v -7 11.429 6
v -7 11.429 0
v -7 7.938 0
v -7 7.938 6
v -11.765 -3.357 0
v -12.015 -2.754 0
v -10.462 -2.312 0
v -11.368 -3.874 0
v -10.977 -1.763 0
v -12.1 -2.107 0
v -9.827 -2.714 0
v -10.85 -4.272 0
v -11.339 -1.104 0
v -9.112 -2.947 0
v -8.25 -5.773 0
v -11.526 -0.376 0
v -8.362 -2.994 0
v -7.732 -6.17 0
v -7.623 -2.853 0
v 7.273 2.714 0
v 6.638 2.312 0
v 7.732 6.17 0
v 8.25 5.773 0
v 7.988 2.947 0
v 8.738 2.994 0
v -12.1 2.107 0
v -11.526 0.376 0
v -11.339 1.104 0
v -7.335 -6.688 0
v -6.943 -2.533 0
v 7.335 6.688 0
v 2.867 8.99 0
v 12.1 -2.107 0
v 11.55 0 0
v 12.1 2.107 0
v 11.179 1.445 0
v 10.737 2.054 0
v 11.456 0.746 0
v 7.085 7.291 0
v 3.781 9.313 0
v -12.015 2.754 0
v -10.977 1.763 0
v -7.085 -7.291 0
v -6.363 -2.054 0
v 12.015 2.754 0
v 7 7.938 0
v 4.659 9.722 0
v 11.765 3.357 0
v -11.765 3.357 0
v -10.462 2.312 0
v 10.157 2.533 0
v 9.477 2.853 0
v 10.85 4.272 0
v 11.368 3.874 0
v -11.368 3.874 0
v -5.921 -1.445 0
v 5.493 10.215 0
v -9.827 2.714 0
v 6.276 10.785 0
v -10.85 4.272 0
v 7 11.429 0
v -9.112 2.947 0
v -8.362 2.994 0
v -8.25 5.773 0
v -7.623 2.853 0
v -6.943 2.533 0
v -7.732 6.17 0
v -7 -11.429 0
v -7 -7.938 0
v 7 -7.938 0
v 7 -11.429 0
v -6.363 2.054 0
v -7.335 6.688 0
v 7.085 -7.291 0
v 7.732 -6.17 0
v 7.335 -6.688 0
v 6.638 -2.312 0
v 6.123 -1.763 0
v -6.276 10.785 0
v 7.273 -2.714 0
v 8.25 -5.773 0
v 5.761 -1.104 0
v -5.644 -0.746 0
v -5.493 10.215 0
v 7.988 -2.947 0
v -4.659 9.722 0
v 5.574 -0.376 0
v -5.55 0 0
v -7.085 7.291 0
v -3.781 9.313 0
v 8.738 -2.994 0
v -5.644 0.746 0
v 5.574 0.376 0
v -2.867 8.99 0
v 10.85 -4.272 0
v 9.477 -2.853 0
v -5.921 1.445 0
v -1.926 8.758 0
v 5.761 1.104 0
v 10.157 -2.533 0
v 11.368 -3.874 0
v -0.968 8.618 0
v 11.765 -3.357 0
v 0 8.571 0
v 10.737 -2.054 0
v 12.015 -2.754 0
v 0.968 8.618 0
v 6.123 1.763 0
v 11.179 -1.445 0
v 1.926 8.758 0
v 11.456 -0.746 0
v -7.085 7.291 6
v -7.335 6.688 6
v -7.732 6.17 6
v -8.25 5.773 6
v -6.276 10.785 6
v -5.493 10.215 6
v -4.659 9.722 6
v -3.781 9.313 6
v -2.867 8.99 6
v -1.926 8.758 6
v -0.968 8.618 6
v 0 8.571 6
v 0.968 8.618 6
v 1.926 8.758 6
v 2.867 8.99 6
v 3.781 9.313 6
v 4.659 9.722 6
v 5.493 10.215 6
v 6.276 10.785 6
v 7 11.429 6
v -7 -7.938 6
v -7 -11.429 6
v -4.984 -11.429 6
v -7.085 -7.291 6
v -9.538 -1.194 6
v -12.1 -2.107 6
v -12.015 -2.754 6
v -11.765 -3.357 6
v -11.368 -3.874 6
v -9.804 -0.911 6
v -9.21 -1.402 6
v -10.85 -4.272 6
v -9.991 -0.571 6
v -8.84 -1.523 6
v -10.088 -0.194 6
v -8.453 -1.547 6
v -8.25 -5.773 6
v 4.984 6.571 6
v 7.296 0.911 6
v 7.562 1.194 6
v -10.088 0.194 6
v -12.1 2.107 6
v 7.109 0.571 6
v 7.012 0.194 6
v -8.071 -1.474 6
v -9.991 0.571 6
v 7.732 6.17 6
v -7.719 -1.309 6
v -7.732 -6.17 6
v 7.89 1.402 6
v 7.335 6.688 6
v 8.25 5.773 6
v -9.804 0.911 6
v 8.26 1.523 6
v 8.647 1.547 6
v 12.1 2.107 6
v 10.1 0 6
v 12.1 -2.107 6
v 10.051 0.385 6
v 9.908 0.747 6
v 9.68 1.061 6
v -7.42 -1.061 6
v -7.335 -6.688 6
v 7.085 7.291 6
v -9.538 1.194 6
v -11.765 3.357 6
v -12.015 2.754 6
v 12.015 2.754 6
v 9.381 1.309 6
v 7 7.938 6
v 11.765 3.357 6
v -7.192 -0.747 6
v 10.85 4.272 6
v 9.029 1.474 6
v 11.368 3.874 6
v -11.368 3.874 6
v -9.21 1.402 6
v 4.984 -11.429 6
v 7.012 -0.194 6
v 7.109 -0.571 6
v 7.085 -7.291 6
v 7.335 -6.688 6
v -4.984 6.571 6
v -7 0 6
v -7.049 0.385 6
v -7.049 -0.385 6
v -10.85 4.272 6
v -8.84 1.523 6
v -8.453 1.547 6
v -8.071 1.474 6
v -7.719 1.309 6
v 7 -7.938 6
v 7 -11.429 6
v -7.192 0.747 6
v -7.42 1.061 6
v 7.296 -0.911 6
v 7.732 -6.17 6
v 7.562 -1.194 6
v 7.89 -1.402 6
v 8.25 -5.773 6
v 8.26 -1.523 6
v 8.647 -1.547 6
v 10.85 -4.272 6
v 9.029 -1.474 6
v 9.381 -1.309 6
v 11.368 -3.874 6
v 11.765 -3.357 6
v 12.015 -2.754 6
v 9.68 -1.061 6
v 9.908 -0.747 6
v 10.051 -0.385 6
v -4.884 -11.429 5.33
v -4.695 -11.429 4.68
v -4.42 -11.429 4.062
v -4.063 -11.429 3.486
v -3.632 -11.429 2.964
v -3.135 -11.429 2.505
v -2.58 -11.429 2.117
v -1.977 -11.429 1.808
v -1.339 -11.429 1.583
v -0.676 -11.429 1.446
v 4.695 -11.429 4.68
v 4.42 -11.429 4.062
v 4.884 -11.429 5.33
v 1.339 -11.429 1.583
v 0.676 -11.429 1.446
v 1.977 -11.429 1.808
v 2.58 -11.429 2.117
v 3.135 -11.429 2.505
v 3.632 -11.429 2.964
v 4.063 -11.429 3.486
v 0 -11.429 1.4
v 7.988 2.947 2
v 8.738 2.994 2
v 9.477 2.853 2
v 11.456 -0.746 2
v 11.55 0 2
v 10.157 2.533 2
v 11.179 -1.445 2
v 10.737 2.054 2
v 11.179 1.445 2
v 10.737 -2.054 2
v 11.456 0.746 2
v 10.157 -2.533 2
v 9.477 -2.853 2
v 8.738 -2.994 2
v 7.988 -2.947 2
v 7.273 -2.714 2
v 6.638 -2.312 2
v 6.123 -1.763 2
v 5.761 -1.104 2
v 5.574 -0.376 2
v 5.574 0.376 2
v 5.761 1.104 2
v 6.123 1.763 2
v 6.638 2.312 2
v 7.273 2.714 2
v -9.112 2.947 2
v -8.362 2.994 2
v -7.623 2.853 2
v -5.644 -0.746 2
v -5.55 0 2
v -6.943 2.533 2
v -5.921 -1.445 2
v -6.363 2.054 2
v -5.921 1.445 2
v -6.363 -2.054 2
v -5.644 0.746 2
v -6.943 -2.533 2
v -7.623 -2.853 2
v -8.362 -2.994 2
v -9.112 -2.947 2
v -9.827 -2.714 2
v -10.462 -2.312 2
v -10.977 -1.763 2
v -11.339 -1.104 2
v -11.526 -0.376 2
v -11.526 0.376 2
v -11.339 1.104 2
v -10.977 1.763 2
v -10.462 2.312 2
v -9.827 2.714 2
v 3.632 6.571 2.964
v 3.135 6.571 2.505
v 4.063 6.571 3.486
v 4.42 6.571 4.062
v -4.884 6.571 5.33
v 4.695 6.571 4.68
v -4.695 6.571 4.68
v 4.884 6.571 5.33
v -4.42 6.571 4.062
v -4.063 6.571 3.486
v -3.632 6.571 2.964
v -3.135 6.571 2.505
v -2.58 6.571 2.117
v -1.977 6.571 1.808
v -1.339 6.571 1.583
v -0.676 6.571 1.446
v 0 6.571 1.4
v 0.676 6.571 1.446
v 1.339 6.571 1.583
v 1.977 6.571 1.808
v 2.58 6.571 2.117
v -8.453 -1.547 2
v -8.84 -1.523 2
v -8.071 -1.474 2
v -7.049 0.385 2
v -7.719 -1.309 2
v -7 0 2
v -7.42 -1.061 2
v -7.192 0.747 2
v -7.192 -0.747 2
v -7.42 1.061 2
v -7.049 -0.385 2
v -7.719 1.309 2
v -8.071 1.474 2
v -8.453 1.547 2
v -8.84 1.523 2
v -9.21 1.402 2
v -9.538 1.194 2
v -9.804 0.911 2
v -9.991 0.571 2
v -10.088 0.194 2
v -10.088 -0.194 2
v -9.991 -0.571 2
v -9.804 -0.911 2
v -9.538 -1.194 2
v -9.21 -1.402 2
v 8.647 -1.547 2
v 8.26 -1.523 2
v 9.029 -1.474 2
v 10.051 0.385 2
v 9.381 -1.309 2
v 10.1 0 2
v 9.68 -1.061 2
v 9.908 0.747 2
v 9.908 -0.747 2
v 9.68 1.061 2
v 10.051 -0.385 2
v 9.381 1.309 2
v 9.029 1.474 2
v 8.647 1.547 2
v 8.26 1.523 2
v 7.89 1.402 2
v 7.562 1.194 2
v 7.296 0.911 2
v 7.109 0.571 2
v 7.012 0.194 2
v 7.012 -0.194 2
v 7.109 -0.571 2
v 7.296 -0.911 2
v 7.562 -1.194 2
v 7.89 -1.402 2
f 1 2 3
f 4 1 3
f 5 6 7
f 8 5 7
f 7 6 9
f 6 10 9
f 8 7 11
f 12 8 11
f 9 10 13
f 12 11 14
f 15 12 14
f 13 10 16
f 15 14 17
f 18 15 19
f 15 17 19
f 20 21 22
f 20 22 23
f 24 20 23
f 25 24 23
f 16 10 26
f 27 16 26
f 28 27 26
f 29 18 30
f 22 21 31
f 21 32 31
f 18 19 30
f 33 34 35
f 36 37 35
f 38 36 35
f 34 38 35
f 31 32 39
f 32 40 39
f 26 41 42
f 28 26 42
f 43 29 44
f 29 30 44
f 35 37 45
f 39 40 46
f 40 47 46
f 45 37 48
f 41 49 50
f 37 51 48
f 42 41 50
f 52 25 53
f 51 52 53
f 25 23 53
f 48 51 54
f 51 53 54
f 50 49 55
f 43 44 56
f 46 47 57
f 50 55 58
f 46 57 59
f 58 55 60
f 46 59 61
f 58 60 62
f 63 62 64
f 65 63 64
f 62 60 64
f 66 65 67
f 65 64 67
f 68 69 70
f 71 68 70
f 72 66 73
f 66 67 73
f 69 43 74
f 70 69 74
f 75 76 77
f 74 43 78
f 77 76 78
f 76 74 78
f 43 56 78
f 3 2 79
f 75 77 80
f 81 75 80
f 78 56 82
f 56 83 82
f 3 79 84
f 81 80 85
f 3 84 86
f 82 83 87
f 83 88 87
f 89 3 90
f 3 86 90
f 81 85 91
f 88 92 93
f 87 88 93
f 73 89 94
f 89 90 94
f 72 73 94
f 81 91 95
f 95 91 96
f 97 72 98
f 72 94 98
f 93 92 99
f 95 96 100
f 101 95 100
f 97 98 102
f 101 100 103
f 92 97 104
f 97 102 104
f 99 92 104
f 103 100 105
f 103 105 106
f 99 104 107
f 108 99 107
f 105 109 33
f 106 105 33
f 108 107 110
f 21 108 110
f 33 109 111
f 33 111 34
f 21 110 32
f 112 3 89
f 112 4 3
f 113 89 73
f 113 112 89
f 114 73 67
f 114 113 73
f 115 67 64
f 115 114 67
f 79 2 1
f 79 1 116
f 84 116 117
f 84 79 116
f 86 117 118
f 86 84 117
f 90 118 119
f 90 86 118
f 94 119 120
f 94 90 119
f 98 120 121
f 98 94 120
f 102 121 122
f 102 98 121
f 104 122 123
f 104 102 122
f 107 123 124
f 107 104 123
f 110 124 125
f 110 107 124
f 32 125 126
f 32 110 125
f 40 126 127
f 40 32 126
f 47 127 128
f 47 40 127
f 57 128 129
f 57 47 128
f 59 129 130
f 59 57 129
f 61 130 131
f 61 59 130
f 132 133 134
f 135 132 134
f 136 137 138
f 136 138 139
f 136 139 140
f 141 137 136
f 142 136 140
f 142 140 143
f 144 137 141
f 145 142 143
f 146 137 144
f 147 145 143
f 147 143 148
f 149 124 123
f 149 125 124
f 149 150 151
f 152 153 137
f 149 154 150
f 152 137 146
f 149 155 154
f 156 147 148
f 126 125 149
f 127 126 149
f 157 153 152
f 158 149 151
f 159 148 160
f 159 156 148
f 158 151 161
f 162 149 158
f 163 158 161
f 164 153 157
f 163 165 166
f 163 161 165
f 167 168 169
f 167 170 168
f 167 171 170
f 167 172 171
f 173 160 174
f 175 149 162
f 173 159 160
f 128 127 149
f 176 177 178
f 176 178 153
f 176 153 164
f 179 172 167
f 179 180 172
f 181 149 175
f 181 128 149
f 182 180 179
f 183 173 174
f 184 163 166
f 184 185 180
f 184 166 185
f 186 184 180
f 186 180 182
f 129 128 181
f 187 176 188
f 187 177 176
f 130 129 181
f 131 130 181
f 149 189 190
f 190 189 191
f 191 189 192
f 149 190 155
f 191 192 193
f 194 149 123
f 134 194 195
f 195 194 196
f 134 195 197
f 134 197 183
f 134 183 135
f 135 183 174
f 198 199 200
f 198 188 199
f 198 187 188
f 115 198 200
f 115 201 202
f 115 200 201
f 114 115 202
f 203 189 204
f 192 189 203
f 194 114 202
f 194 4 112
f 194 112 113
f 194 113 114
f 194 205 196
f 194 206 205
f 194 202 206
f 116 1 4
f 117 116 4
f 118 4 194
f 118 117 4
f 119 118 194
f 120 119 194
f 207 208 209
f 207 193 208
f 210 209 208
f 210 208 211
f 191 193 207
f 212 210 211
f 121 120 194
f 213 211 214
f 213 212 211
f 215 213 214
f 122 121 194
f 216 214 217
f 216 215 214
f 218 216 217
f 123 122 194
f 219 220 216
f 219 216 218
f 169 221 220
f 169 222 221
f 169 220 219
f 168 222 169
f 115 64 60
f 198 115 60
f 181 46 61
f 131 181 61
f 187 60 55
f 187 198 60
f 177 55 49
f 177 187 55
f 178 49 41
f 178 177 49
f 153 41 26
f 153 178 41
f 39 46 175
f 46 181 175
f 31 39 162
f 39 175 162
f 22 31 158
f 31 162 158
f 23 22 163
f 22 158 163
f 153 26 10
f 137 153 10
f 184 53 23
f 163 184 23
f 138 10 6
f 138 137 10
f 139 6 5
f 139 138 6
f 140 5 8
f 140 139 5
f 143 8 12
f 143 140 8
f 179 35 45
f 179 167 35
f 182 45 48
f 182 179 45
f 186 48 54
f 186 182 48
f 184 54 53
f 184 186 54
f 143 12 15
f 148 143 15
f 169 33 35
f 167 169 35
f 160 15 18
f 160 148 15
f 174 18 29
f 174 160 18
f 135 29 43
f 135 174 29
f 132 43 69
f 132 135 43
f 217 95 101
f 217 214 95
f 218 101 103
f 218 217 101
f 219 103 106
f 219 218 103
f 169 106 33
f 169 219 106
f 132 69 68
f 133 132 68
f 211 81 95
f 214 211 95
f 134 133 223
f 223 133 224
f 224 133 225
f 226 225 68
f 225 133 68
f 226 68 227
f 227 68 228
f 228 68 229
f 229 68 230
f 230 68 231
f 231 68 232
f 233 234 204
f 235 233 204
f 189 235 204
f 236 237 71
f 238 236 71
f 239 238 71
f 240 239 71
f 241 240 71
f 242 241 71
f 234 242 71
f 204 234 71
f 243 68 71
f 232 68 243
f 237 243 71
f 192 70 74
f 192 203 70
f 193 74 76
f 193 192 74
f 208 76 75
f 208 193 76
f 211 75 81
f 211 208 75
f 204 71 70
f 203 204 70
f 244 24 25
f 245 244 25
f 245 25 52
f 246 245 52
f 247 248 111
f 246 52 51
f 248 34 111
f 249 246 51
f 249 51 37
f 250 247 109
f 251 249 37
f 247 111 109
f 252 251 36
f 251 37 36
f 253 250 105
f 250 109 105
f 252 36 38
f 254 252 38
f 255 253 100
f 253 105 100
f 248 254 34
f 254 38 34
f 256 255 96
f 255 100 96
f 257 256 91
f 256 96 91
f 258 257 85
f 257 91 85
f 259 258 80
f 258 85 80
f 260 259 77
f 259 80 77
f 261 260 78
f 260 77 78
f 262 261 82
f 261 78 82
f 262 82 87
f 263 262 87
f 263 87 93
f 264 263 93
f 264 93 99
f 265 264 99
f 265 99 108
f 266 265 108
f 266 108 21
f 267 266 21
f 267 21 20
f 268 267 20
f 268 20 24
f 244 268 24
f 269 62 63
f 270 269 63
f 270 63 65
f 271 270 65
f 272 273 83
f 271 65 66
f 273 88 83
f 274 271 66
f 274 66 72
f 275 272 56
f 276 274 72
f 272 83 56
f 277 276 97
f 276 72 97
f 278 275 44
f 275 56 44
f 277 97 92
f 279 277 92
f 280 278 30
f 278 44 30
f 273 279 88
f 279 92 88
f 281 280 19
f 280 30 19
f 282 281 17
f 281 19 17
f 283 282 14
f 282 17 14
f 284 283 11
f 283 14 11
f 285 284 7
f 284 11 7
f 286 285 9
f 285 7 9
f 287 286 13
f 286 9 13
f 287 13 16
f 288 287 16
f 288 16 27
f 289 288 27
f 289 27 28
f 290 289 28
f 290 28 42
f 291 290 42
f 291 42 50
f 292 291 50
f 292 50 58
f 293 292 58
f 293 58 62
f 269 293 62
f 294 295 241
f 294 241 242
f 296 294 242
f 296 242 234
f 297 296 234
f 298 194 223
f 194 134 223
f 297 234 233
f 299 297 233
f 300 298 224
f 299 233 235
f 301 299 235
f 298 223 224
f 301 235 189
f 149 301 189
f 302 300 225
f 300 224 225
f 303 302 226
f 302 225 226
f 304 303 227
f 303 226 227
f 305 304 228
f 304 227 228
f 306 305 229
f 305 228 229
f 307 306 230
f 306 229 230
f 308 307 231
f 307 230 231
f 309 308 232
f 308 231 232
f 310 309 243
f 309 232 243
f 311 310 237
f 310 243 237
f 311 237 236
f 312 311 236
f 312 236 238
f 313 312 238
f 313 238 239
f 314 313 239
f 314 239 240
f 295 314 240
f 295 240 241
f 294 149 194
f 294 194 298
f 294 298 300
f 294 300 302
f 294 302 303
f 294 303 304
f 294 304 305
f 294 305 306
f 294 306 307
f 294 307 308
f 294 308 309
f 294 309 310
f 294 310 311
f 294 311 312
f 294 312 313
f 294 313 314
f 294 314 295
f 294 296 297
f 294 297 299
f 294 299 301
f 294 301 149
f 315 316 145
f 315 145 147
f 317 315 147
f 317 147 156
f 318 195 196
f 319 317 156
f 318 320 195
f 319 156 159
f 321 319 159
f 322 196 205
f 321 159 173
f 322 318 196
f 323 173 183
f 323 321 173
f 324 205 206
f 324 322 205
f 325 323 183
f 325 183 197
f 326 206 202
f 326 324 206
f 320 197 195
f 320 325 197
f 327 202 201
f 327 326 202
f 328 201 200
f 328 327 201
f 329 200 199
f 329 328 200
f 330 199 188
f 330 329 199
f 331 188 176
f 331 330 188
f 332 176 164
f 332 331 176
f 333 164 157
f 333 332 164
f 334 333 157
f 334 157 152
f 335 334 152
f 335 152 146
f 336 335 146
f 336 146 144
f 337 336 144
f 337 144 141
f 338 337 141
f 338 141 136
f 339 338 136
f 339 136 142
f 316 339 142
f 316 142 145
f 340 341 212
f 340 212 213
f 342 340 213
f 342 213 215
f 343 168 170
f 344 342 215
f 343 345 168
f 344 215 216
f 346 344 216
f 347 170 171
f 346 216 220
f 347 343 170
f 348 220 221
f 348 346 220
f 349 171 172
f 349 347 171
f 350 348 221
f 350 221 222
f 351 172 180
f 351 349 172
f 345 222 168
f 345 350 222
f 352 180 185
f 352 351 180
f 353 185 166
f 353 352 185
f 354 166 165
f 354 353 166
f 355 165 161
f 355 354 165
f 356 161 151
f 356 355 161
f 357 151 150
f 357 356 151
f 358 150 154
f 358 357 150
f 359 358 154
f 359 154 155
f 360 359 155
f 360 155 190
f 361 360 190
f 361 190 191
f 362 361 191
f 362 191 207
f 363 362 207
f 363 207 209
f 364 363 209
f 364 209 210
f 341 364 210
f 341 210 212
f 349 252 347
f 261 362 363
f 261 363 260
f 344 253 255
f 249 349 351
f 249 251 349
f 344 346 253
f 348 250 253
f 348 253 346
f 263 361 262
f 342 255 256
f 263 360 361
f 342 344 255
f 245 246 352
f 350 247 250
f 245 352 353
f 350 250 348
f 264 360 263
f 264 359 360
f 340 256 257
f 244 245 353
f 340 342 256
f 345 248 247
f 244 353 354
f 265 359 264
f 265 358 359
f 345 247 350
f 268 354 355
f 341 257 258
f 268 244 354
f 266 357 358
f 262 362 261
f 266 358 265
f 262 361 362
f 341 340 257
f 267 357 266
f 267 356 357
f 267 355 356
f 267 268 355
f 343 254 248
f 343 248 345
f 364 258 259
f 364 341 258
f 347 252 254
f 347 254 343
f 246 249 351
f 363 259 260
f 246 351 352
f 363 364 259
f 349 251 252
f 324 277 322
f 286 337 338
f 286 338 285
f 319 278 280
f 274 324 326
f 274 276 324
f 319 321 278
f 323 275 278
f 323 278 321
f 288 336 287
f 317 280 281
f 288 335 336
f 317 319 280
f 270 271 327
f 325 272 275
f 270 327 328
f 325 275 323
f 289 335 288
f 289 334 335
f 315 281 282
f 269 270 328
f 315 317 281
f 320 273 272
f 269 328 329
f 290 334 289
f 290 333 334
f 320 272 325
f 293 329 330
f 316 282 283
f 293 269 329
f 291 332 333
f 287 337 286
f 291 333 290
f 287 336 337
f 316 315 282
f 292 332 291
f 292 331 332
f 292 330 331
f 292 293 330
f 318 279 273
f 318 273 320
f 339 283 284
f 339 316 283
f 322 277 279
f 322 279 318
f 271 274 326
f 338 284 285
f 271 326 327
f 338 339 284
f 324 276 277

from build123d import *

# Parameters (mm, degrees)
SKETCH_R        = 1.55
EXTRUDE_DEPTH   = 6
SKETCH001_R     = 5
POCKET_DEPTH    = 18
FILLET_R        = 2.5
SKETCH002_R     = 3
POCKET001_DEPTH = 2


with BuildPart() as part:
    # Sketch → Extrude (new body)
    with BuildSketch(Plane.XY):
        with BuildLine():
            Line((-7, 11.429286), (-7, 6.494486))
            Line((-7, 6.494486), (-12.1, 3.55))
            Line((-12.1, 3.55), (-12.1, -3.55))
            Line((-12.1, -3.55), (-7, -6.494486))
            Line((-7, -6.494486), (-7, -11.429286))
            Line((-7, -11.429286), (7, -11.429286))
            Line((7, -11.429286), (7, -6.494486))
            Line((7, -6.494486), (12.1, -3.55))
            Line((12.1, -3.55), (12.1, 3.55))
            Line((12.1, 3.55), (7, 6.494486))
            Line((7, 6.494486), (7, 11.429286))
            ThreePointArc((-7, 11.429286), (0, 8.570714), (7, 11.429286))
        make_face()
        with Locations((-8.55, 0)):
            Circle(SKETCH_R, mode=Mode.SUBTRACT)
        with Locations((8.55, 0)):
            Circle(SKETCH_R, mode=Mode.SUBTRACT)
    extrude(amount=EXTRUDE_DEPTH)

    # Sketch001 → Pocket (cut)
    with BuildSketch(Plane.XZ.offset(11.429286)):
        with Locations((0, 6.4)):
            Circle(SKETCH001_R)
    extrude(amount=-POCKET_DEPTH, mode=Mode.SUBTRACT)

    # Fillet
    fillet_edges = [part.edges().sort_by_distance(p)[0] for p in [
        (-7, 6.494486, 3),
        (-12.1, 3.55, 3),
        (7, 6.494486, 3),
        (-12.1, -3.55, 3),
        (-7, -6.494486, 3),
        (7, -6.494486, 3),
        (12.1, -3.55, 3),
        (12.1, 3.55, 3),
    ]]
    fillet(fillet_edges, radius=FILLET_R)

    # Sketch002 → Pocket001 (cut)
    with BuildSketch(Plane(origin=(0, 0, 0), x_dir=(1, 0, 0), z_dir=(0, 0, -1))):
        with Locations((-8.55, 0)):
            Circle(SKETCH002_R)
        with Locations((8.55, 0)):
            Circle(SKETCH002_R)
    extrude(amount=-POCKET001_DEPTH, mode=Mode.SUBTRACT)


solid = part.part
